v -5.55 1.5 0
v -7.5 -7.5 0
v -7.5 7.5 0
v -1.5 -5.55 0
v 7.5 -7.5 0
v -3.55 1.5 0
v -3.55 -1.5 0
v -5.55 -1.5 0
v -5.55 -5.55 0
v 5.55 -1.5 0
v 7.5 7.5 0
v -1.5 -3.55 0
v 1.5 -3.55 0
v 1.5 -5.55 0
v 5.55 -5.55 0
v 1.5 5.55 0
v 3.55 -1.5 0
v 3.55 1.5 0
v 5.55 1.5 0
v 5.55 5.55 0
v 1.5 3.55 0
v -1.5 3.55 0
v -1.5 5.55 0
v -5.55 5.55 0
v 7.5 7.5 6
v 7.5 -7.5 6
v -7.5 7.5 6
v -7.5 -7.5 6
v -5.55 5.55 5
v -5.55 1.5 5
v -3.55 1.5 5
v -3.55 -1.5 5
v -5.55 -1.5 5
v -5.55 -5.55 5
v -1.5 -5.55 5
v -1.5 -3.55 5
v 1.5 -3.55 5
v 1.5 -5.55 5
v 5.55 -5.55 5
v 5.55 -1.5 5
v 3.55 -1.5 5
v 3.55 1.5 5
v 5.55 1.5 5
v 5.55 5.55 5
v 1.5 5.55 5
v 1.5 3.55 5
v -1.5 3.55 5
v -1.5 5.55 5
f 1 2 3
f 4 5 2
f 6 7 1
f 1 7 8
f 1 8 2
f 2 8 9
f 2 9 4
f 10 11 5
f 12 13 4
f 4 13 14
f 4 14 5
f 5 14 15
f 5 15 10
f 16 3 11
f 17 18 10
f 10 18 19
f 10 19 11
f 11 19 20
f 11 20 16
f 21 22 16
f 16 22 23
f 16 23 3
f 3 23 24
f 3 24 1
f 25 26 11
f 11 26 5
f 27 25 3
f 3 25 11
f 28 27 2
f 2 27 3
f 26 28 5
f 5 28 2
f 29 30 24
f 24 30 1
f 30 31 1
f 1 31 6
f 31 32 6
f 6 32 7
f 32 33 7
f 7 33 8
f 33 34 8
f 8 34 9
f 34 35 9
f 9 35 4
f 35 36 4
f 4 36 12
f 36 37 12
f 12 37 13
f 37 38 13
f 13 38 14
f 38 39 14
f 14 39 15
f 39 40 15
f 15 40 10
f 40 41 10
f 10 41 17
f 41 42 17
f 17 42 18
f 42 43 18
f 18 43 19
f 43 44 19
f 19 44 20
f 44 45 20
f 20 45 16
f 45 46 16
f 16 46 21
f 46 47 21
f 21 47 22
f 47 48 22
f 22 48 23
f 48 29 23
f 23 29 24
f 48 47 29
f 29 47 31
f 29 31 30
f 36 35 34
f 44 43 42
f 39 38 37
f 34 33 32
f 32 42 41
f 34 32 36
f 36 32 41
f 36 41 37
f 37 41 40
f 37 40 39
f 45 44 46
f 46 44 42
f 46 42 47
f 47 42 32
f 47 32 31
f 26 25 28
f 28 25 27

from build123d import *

# Parameters (mm, degrees)
SKETCH1_W           = 15
SKETCH1_H           = 15
BOSS_EXTRUDE1_DEPTH = 5
SKETCH2_W           = 15
SKETCH2_H           = 15
BOSS_EXTRUDE2_DEPTH = 1


with BuildPart() as part:
    # Sketch1 → Boss-Extrude1 (new body)
    with BuildSketch(Plane.XY):
        Rectangle(SKETCH1_W, SKETCH1_H)
        Polygon((-5.55, 5.55), (-1.5, 5.55), (-1.5, 3.55), (1.5, 3.55), (1.5, 5.55), (5.55, 5.55), (5.55, 1.5), (3.55, 1.5), (3.55, -1.5), (5.55, -1.5), (5.55, -5.55), (1.5, -5.55), (1.5, -3.55), (-1.5, -3.55), (-1.5, -5.55), (-5.55, -5.55), (-5.55, -1.5), (-3.55, -1.5), (-3.55, 1.5), (-5.55, 1.5), align=None, mode=Mode.SUBTRACT)
    extrude(amount=BOSS_EXTRUDE1_DEPTH)

    # Sketch2 → Boss-Extrude2 (add)
    with BuildSketch(Plane.XY.offset(5)):
        Rectangle(SKETCH2_W, SKETCH2_H)
    extrude(amount=BOSS_EXTRUDE2_DEPTH)


solid = part.part
